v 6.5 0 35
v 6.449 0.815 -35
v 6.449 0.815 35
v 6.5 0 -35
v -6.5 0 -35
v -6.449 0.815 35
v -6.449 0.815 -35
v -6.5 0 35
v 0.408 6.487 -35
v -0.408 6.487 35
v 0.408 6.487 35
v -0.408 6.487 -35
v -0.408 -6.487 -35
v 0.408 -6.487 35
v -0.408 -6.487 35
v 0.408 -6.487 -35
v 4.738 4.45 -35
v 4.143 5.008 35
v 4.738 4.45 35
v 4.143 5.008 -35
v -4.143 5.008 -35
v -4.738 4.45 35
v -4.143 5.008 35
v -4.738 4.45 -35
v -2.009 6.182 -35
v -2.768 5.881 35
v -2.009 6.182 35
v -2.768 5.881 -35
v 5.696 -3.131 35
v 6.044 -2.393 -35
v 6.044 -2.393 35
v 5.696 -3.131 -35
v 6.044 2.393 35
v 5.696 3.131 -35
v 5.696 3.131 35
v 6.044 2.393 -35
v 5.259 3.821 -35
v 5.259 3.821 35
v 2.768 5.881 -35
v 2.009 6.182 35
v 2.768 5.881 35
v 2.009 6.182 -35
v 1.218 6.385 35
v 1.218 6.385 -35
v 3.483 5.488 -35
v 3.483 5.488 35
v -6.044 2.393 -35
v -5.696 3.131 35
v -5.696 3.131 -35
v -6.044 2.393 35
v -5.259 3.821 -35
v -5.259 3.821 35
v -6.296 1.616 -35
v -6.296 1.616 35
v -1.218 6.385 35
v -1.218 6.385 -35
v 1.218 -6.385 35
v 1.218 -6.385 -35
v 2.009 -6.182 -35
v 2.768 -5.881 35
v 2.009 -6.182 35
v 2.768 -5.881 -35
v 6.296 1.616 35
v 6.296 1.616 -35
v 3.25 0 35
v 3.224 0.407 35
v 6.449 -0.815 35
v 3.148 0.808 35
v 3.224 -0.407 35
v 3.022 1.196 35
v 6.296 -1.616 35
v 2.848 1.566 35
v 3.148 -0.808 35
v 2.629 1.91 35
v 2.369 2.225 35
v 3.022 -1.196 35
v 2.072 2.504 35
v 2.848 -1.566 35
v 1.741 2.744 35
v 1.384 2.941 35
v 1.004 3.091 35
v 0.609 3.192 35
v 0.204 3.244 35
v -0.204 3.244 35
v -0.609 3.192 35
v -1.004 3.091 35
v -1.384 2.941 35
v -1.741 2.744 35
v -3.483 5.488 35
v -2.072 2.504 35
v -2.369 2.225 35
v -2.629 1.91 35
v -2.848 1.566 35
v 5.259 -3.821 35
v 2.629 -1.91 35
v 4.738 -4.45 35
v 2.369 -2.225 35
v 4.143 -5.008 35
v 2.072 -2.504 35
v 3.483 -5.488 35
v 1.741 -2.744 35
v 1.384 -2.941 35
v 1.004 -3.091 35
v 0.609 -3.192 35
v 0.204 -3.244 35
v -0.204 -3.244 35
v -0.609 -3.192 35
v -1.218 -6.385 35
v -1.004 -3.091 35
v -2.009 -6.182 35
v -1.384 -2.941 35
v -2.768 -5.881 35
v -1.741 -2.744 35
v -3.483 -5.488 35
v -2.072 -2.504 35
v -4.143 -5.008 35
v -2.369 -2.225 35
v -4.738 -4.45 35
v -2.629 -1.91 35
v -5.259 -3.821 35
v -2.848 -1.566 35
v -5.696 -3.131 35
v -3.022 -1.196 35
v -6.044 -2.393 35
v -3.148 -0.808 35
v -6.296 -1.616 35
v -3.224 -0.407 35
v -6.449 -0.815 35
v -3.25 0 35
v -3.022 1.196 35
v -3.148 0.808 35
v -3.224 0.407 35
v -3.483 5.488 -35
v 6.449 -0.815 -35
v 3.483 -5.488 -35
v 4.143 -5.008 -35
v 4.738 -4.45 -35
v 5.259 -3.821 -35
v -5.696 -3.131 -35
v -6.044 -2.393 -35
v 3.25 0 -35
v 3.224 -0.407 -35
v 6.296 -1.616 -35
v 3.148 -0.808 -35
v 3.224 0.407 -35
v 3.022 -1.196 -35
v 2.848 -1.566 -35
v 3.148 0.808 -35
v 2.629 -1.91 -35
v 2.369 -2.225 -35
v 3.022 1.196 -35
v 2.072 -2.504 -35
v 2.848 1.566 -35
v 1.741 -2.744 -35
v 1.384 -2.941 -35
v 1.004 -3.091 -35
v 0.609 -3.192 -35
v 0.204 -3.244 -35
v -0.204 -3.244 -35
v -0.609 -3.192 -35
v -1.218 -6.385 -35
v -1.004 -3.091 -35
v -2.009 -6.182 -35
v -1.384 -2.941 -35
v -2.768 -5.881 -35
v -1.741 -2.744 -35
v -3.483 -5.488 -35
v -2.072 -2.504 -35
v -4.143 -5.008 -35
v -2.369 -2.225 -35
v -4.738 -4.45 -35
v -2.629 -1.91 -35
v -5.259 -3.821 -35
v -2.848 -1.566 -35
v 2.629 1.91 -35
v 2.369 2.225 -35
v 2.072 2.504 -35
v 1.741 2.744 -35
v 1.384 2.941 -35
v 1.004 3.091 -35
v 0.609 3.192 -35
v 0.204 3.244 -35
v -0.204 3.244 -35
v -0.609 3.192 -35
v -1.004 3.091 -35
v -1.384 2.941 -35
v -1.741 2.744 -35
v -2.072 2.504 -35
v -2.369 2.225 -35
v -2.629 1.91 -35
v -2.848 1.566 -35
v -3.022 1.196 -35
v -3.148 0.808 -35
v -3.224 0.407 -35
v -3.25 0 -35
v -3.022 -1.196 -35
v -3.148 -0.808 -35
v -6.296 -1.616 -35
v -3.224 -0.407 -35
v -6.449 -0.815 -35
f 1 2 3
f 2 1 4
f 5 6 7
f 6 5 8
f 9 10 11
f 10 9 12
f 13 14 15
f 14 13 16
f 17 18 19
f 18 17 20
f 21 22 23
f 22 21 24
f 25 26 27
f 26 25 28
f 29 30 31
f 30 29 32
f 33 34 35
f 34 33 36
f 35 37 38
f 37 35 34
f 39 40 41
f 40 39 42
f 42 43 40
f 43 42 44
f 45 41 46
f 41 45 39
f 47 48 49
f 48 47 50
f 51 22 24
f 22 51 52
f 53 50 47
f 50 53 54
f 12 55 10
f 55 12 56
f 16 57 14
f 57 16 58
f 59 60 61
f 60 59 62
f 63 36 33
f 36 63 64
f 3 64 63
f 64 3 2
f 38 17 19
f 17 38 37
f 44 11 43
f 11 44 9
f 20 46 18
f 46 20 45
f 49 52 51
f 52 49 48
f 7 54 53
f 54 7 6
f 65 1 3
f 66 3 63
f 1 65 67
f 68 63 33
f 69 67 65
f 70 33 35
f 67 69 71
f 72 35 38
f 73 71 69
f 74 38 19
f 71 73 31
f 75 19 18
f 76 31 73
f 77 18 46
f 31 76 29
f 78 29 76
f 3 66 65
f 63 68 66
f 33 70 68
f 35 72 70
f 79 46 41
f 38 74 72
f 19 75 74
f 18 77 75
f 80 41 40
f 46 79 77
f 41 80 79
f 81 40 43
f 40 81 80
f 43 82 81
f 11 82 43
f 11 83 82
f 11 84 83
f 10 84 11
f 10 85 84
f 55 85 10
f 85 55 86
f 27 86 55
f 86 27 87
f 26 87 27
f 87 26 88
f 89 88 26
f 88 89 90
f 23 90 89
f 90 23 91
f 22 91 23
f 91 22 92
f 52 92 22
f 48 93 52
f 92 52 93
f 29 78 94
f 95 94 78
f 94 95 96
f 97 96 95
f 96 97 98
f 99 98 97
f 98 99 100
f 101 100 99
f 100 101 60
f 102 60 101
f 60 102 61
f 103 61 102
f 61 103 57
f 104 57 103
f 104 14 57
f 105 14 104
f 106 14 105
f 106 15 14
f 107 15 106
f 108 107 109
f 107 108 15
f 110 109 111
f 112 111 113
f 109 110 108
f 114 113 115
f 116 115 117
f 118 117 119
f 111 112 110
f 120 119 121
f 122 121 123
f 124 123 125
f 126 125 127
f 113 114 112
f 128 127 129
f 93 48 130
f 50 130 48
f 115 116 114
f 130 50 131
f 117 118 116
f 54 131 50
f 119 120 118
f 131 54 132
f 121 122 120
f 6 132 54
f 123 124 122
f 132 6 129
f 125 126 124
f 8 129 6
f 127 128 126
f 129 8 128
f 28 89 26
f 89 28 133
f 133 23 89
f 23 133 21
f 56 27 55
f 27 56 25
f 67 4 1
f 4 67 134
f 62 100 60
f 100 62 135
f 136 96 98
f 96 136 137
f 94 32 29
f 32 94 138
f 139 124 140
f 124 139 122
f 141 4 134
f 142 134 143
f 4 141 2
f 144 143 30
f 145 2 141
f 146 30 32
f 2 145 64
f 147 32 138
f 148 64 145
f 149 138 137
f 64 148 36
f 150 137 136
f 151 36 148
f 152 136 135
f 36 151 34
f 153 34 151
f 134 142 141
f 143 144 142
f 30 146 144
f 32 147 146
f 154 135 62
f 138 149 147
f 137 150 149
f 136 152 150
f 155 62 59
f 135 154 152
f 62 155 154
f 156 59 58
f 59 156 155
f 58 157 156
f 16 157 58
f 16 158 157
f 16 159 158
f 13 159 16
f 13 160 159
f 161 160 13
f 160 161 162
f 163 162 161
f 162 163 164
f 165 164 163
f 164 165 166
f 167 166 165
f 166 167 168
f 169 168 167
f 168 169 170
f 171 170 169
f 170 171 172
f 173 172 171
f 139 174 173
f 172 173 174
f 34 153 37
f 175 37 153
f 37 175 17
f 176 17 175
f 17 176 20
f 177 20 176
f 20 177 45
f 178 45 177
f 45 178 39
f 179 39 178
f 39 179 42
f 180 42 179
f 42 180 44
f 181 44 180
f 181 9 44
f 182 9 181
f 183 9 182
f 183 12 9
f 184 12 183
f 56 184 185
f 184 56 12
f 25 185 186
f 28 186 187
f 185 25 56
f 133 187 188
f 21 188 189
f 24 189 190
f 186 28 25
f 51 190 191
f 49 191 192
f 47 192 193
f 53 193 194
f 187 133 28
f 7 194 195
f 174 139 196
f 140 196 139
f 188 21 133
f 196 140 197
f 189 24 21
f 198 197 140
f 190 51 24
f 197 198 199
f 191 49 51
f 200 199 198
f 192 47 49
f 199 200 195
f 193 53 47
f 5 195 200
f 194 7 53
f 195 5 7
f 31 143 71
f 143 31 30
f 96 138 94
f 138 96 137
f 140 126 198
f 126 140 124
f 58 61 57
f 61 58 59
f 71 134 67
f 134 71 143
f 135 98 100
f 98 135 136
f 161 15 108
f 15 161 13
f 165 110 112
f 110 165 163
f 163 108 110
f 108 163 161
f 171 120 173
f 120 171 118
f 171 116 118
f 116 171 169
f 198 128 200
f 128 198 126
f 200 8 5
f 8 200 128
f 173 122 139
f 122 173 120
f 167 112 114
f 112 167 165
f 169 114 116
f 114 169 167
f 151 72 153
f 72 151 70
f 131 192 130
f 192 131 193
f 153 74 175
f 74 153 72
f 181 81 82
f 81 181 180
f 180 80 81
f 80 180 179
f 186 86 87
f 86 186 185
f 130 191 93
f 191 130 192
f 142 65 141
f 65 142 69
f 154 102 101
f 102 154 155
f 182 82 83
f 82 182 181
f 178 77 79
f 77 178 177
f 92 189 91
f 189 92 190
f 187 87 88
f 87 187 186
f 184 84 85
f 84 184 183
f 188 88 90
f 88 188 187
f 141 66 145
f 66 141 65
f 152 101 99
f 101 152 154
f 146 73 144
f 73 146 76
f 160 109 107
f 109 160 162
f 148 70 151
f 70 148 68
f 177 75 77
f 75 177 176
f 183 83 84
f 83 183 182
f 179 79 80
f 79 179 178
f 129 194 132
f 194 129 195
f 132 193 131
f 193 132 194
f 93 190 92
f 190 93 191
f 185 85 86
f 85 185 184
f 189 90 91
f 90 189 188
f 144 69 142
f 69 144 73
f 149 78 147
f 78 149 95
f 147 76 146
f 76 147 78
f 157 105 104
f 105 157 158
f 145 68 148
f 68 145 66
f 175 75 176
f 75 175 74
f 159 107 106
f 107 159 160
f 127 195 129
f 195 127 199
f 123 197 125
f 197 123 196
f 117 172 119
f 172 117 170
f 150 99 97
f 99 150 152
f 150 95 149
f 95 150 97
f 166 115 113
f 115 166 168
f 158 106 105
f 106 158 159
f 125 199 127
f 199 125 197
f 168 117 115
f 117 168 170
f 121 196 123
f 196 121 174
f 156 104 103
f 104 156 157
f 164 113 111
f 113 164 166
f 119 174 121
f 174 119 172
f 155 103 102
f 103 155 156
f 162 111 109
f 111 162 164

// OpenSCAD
$fn = 50;


difference() {
	union() {
		translate(v = [0, 0, -35.0000000000]) {
			cylinder(h = 70, r = 6.5000000000);
		}
	}
	union() {
		translate(v = [0, 0, -100.0000000000]) {
			cylinder(h = 200, r = 3.2500000000);
		}
	}
}
